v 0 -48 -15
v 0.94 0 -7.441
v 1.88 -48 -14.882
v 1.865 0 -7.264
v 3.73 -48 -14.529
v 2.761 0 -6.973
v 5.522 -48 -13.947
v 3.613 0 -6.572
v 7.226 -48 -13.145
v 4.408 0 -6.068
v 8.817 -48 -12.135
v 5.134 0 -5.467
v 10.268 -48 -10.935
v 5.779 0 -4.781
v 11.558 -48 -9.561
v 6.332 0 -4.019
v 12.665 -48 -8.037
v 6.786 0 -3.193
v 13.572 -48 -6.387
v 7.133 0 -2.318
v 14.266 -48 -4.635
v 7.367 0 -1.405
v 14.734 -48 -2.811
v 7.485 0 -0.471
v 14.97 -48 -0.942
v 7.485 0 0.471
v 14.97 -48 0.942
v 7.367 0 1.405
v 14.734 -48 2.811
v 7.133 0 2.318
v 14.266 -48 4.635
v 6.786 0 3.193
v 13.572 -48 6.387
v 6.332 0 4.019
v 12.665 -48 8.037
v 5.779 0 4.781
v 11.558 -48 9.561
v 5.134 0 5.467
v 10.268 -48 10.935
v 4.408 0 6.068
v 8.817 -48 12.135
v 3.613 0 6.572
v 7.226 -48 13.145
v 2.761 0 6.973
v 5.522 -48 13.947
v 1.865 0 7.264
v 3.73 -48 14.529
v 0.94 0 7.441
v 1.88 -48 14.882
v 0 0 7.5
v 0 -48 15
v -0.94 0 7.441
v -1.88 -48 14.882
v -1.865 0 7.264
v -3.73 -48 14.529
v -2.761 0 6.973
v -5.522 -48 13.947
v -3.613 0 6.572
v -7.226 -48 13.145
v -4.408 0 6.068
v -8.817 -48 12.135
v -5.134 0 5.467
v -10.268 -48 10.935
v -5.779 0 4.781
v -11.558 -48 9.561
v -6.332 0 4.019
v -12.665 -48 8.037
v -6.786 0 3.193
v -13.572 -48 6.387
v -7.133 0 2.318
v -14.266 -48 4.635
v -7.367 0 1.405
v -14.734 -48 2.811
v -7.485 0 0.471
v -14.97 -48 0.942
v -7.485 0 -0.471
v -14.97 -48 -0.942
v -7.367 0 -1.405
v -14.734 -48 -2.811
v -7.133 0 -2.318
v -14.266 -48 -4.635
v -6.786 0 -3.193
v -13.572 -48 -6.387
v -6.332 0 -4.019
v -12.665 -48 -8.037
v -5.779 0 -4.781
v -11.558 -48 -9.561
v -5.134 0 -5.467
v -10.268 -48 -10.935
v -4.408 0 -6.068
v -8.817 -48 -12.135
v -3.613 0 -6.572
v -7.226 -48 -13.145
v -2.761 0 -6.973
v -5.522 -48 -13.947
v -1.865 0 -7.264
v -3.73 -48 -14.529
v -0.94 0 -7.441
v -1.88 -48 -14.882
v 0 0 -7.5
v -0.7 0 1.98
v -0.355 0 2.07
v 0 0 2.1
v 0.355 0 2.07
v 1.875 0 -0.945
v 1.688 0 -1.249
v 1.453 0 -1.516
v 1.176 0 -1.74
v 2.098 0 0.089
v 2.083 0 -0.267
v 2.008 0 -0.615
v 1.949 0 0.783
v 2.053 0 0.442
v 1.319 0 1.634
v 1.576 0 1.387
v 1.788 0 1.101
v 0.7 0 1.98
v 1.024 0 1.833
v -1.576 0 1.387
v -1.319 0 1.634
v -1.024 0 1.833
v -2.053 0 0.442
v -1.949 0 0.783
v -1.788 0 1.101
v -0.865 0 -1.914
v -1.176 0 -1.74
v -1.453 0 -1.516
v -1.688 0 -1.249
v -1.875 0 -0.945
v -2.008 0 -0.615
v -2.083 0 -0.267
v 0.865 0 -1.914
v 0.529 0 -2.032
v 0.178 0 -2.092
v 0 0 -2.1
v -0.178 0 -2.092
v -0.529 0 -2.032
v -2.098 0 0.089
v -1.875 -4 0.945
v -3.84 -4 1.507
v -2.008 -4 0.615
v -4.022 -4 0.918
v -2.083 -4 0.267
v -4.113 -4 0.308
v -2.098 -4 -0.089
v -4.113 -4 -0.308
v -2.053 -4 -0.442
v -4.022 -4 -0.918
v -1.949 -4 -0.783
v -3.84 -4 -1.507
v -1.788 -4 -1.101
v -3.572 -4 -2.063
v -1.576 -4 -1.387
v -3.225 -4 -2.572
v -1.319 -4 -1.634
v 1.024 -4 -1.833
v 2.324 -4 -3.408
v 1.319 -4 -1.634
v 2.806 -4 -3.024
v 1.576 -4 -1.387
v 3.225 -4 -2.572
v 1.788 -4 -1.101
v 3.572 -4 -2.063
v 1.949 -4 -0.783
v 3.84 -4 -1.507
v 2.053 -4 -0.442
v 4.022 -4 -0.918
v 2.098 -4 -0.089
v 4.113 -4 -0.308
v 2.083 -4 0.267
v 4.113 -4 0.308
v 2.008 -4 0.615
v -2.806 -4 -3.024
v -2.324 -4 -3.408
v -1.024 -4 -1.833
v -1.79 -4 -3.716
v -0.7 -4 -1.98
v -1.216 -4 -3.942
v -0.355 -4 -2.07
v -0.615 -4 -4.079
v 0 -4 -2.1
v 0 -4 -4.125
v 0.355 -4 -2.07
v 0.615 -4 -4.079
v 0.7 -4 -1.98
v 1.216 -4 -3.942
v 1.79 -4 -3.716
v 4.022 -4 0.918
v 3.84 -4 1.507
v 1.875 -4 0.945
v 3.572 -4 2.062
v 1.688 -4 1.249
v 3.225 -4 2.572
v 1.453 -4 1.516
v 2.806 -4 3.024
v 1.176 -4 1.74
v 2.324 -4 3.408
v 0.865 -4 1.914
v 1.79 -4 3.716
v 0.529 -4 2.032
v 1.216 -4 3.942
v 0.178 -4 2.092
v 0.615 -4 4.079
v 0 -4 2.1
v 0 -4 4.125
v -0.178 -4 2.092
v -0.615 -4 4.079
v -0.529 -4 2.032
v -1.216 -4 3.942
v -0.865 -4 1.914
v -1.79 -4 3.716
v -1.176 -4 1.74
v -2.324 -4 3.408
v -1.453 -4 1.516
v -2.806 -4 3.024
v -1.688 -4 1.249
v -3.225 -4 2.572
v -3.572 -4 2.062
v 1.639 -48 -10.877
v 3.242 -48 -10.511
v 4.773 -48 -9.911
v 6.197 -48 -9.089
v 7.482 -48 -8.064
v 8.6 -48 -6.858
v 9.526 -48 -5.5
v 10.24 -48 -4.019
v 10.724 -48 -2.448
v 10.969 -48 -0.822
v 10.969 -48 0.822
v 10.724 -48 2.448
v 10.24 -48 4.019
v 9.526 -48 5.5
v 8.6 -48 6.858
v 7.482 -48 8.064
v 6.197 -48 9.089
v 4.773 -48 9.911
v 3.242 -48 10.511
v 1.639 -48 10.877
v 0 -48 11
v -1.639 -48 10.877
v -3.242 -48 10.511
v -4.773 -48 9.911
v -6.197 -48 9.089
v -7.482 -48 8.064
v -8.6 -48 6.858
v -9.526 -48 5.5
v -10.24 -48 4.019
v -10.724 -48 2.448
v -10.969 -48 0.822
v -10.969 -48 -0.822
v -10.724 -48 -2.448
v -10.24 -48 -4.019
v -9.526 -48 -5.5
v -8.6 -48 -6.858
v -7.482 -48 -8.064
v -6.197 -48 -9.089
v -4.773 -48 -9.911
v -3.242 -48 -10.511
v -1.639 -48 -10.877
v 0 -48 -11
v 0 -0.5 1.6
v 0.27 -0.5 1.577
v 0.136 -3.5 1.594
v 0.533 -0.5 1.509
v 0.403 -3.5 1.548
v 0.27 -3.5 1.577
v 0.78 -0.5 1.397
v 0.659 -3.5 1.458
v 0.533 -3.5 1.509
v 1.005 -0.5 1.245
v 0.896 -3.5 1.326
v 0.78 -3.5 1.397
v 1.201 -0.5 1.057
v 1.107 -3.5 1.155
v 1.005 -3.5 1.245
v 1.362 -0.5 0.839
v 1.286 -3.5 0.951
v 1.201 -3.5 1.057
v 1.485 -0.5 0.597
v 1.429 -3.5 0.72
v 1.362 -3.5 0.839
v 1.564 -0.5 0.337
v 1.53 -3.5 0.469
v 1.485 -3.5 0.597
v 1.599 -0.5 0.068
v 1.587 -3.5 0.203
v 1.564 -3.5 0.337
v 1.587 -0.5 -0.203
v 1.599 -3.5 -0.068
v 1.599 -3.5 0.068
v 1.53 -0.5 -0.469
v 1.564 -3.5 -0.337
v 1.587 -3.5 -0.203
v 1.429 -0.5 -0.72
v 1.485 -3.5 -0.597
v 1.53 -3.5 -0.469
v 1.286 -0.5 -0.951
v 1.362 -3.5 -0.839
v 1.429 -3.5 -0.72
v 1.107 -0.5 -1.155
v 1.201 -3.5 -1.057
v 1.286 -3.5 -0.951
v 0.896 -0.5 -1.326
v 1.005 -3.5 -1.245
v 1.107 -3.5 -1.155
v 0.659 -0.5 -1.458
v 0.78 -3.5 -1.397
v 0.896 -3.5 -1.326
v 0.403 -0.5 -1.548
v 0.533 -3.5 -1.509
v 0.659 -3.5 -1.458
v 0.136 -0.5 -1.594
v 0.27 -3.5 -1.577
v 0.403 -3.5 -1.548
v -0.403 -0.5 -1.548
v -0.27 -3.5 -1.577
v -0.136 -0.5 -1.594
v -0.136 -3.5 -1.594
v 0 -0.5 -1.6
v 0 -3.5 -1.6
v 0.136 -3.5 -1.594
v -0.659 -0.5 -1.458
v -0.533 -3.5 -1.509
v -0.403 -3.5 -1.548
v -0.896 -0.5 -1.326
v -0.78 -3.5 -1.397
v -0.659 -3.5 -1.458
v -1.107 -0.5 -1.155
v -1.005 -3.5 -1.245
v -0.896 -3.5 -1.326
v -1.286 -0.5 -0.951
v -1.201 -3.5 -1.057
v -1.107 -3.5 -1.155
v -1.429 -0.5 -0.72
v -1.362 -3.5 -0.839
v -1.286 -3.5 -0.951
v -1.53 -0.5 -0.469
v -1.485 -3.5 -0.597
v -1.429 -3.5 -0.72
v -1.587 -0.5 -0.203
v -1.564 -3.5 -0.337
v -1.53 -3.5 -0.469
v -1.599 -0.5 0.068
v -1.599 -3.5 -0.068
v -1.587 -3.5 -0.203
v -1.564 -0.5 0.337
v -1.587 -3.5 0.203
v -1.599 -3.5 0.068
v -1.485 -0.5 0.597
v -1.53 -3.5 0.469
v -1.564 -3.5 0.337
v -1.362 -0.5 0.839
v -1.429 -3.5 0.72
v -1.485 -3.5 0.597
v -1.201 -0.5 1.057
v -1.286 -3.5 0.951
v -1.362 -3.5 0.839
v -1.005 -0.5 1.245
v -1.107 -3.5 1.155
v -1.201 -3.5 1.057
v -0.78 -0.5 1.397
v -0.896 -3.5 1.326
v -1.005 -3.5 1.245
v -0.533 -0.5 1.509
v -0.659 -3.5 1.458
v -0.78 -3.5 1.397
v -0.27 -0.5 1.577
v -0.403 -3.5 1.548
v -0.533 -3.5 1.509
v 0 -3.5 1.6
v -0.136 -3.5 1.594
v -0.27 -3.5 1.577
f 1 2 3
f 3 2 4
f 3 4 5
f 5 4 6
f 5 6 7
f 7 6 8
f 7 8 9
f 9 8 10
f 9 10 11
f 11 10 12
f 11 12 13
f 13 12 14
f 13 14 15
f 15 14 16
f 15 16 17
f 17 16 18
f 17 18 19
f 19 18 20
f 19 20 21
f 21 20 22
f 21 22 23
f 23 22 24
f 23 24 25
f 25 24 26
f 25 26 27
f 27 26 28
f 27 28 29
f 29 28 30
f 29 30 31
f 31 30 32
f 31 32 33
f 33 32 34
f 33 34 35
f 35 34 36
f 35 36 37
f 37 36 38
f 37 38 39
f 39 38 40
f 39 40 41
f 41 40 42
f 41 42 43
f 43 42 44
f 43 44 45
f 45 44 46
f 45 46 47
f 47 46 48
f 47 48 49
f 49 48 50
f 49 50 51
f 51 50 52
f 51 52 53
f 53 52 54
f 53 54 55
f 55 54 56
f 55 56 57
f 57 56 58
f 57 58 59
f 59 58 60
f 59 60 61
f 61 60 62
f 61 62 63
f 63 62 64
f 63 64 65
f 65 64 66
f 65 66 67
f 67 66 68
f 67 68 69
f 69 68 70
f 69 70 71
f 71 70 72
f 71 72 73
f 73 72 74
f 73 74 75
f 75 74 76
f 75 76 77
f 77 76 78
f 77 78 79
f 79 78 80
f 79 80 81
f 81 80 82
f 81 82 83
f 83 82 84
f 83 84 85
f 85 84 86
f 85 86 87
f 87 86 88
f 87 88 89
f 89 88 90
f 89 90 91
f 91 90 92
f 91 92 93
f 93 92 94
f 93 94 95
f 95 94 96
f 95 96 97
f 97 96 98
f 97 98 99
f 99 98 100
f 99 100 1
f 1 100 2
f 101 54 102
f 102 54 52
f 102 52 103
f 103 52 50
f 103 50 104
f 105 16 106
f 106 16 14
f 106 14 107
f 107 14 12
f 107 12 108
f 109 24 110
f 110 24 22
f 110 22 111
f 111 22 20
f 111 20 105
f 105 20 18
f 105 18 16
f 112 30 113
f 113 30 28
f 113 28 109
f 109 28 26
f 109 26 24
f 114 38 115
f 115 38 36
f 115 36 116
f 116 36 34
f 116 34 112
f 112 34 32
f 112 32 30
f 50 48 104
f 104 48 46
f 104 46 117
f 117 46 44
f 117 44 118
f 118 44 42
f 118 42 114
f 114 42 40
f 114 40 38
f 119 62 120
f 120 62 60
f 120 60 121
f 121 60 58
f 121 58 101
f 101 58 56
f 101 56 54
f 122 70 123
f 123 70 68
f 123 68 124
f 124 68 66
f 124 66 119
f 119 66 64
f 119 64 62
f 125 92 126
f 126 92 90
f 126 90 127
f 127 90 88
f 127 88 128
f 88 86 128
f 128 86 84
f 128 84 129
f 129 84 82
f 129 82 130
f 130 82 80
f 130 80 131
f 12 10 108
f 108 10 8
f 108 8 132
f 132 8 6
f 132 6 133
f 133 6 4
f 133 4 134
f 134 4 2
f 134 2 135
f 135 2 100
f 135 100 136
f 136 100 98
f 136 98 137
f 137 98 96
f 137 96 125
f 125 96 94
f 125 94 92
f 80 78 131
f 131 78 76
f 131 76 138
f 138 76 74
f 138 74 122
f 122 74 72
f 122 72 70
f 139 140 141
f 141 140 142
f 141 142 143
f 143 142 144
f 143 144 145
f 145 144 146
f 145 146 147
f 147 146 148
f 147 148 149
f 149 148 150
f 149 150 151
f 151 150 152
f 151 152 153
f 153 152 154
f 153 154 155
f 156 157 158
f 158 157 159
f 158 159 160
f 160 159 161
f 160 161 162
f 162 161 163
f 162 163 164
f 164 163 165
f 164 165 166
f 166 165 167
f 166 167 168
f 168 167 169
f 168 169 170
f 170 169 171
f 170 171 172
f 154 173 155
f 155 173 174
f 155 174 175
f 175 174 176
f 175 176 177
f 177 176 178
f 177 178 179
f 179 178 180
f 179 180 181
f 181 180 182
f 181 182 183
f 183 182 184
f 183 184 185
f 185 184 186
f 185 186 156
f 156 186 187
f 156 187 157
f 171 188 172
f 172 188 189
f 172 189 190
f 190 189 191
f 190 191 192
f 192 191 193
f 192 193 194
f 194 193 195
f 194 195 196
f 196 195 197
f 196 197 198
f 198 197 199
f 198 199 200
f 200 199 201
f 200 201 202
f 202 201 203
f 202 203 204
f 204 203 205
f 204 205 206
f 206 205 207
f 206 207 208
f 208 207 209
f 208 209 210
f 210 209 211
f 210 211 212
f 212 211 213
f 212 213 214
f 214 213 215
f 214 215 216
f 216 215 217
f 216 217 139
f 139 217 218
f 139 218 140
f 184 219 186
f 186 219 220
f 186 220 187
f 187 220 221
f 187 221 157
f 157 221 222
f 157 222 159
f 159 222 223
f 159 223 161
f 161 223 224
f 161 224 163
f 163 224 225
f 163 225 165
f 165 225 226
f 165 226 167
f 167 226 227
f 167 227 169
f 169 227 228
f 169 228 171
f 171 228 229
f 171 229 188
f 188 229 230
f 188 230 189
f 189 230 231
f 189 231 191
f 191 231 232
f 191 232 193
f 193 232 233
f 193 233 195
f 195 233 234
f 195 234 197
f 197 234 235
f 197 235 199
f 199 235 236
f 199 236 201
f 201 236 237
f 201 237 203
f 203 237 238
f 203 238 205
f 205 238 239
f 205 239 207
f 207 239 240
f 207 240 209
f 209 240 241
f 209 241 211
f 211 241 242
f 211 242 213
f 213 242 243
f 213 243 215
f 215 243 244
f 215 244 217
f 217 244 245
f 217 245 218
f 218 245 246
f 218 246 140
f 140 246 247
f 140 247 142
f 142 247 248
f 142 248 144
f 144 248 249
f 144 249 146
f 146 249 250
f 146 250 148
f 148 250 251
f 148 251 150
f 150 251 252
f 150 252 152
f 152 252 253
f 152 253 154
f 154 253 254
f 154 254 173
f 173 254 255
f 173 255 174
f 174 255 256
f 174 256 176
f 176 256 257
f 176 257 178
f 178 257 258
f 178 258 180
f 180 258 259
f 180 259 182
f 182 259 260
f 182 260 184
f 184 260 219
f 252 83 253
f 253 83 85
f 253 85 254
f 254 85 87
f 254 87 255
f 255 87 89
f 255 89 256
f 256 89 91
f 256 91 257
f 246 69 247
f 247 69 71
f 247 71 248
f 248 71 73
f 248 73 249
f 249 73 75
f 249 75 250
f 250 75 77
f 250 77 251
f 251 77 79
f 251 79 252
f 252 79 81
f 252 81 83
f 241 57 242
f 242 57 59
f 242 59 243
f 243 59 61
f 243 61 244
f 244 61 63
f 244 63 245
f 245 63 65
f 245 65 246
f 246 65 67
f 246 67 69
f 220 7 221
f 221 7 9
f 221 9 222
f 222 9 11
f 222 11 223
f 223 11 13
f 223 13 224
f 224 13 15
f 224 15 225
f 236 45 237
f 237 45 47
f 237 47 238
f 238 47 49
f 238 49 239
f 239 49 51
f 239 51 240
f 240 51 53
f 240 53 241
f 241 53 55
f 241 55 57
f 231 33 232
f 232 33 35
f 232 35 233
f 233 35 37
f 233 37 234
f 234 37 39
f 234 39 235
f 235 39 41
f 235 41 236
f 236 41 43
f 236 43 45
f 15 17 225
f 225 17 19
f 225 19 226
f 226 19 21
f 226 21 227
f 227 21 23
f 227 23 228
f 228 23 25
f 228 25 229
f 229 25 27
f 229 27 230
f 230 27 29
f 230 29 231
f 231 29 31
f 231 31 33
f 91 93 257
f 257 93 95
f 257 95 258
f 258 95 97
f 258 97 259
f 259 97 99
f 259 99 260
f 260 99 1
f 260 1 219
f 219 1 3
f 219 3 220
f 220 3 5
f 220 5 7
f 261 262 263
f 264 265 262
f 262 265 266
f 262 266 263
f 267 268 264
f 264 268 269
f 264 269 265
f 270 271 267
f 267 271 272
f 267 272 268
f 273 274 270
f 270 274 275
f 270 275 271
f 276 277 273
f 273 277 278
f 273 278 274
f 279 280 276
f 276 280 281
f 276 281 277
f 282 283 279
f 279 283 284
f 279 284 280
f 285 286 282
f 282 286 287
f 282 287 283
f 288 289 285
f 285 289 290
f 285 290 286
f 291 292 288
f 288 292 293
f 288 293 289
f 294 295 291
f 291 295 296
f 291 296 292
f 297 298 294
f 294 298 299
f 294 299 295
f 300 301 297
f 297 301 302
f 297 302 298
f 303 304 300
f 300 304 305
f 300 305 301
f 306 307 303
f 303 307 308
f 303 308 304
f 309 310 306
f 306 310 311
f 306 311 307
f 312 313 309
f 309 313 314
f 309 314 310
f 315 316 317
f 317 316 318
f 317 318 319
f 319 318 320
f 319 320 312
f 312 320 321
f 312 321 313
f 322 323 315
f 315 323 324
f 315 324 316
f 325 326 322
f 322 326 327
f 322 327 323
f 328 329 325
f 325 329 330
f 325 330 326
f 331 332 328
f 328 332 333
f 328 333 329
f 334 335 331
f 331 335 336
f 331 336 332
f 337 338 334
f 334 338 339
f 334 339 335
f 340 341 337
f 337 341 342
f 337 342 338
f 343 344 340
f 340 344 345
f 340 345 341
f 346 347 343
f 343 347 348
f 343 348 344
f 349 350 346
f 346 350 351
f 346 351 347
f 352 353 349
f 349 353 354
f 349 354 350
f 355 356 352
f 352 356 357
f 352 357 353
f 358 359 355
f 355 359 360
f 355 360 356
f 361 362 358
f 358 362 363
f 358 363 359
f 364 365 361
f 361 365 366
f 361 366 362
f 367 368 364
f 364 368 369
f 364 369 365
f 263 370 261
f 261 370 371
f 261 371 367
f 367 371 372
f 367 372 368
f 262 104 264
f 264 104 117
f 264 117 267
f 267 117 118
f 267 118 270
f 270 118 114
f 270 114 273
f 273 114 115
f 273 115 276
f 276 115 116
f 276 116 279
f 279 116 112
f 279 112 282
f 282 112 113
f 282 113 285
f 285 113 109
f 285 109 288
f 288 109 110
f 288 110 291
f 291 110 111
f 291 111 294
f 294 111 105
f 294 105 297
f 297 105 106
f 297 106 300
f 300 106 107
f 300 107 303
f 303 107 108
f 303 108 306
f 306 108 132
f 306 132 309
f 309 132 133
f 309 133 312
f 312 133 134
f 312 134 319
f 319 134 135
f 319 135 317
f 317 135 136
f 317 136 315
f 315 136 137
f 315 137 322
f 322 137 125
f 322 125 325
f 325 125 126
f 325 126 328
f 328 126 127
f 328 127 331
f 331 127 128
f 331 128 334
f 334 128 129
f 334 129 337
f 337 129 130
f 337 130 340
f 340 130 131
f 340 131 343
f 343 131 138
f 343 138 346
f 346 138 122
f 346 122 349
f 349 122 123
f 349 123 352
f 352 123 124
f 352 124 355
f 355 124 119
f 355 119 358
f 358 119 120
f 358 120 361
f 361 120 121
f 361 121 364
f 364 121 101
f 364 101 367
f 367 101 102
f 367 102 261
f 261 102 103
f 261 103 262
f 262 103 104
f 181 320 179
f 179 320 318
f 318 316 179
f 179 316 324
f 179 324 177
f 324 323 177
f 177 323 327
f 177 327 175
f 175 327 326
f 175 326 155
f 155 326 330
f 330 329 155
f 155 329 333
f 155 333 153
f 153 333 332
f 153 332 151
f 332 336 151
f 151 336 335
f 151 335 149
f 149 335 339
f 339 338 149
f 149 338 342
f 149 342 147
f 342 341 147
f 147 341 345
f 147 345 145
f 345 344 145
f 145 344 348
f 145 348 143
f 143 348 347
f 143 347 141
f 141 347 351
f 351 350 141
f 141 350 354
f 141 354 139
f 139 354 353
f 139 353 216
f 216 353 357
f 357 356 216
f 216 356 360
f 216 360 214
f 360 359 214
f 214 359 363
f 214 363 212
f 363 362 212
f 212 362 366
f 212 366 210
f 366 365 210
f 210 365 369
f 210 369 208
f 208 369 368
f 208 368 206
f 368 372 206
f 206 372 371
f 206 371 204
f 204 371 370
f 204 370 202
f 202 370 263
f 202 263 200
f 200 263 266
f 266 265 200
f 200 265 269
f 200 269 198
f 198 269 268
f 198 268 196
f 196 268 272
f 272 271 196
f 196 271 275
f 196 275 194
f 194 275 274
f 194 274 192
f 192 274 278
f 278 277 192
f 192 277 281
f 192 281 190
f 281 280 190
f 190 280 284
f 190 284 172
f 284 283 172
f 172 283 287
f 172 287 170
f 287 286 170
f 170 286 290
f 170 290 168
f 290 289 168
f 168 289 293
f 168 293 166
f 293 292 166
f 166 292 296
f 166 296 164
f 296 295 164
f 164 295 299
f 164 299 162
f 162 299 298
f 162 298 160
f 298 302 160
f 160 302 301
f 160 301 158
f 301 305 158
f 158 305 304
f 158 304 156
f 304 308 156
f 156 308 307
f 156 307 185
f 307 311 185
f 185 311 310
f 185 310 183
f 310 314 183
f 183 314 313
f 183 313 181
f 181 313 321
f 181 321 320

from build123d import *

# Parameters (mm, degrees)
SKETCH_4_R          = 1.6
CUT_EXTRUDE_1_DEPTH = 10
CHAMFER_1_SIZE      = 0.5


with BuildPart() as part:
    # 草图3 → 旋转1 (revolve)
    with BuildSketch(Plane(origin=(0, 0, 0), x_dir=(0, 0, -1), z_dir=(1, 0, 0)), mode=Mode.PRIVATE) as revolve_1_sk:
        Polygon((-7.5, 0), (0, 0), (0, -4), (-4.125, -4), (-11, -48), (-15, -48), align=None)
    revolve(revolve_1_sk.sketch.rotate(Axis((0, 28.450677981, 0), (0, 1, 0)), 180), axis=Axis((0, 28.450677981, 0), (0, 1, 0)))

    # 草图4 → 切除-拉伸1 (cut)
    with BuildSketch(Plane(origin=(0, 0, 0), x_dir=(1, 0, 0), z_dir=(0, 1, 0))):
        with Locations(Location((0, 0, 0), (0, 0, 270))):
            Circle(SKETCH_4_R)
    extrude(amount=-CUT_EXTRUDE_1_DEPTH, mode=Mode.SUBTRACT)

    # 倒角1
    chamfer_1_edges = [part.edges().sort_by_distance(p)[0] for p in [
        (0, -4, -1.6),
        (0, 0, -1.6),
    ]]
    chamfer(chamfer_1_edges, length=CHAMFER_1_SIZE)


solid = part.part
